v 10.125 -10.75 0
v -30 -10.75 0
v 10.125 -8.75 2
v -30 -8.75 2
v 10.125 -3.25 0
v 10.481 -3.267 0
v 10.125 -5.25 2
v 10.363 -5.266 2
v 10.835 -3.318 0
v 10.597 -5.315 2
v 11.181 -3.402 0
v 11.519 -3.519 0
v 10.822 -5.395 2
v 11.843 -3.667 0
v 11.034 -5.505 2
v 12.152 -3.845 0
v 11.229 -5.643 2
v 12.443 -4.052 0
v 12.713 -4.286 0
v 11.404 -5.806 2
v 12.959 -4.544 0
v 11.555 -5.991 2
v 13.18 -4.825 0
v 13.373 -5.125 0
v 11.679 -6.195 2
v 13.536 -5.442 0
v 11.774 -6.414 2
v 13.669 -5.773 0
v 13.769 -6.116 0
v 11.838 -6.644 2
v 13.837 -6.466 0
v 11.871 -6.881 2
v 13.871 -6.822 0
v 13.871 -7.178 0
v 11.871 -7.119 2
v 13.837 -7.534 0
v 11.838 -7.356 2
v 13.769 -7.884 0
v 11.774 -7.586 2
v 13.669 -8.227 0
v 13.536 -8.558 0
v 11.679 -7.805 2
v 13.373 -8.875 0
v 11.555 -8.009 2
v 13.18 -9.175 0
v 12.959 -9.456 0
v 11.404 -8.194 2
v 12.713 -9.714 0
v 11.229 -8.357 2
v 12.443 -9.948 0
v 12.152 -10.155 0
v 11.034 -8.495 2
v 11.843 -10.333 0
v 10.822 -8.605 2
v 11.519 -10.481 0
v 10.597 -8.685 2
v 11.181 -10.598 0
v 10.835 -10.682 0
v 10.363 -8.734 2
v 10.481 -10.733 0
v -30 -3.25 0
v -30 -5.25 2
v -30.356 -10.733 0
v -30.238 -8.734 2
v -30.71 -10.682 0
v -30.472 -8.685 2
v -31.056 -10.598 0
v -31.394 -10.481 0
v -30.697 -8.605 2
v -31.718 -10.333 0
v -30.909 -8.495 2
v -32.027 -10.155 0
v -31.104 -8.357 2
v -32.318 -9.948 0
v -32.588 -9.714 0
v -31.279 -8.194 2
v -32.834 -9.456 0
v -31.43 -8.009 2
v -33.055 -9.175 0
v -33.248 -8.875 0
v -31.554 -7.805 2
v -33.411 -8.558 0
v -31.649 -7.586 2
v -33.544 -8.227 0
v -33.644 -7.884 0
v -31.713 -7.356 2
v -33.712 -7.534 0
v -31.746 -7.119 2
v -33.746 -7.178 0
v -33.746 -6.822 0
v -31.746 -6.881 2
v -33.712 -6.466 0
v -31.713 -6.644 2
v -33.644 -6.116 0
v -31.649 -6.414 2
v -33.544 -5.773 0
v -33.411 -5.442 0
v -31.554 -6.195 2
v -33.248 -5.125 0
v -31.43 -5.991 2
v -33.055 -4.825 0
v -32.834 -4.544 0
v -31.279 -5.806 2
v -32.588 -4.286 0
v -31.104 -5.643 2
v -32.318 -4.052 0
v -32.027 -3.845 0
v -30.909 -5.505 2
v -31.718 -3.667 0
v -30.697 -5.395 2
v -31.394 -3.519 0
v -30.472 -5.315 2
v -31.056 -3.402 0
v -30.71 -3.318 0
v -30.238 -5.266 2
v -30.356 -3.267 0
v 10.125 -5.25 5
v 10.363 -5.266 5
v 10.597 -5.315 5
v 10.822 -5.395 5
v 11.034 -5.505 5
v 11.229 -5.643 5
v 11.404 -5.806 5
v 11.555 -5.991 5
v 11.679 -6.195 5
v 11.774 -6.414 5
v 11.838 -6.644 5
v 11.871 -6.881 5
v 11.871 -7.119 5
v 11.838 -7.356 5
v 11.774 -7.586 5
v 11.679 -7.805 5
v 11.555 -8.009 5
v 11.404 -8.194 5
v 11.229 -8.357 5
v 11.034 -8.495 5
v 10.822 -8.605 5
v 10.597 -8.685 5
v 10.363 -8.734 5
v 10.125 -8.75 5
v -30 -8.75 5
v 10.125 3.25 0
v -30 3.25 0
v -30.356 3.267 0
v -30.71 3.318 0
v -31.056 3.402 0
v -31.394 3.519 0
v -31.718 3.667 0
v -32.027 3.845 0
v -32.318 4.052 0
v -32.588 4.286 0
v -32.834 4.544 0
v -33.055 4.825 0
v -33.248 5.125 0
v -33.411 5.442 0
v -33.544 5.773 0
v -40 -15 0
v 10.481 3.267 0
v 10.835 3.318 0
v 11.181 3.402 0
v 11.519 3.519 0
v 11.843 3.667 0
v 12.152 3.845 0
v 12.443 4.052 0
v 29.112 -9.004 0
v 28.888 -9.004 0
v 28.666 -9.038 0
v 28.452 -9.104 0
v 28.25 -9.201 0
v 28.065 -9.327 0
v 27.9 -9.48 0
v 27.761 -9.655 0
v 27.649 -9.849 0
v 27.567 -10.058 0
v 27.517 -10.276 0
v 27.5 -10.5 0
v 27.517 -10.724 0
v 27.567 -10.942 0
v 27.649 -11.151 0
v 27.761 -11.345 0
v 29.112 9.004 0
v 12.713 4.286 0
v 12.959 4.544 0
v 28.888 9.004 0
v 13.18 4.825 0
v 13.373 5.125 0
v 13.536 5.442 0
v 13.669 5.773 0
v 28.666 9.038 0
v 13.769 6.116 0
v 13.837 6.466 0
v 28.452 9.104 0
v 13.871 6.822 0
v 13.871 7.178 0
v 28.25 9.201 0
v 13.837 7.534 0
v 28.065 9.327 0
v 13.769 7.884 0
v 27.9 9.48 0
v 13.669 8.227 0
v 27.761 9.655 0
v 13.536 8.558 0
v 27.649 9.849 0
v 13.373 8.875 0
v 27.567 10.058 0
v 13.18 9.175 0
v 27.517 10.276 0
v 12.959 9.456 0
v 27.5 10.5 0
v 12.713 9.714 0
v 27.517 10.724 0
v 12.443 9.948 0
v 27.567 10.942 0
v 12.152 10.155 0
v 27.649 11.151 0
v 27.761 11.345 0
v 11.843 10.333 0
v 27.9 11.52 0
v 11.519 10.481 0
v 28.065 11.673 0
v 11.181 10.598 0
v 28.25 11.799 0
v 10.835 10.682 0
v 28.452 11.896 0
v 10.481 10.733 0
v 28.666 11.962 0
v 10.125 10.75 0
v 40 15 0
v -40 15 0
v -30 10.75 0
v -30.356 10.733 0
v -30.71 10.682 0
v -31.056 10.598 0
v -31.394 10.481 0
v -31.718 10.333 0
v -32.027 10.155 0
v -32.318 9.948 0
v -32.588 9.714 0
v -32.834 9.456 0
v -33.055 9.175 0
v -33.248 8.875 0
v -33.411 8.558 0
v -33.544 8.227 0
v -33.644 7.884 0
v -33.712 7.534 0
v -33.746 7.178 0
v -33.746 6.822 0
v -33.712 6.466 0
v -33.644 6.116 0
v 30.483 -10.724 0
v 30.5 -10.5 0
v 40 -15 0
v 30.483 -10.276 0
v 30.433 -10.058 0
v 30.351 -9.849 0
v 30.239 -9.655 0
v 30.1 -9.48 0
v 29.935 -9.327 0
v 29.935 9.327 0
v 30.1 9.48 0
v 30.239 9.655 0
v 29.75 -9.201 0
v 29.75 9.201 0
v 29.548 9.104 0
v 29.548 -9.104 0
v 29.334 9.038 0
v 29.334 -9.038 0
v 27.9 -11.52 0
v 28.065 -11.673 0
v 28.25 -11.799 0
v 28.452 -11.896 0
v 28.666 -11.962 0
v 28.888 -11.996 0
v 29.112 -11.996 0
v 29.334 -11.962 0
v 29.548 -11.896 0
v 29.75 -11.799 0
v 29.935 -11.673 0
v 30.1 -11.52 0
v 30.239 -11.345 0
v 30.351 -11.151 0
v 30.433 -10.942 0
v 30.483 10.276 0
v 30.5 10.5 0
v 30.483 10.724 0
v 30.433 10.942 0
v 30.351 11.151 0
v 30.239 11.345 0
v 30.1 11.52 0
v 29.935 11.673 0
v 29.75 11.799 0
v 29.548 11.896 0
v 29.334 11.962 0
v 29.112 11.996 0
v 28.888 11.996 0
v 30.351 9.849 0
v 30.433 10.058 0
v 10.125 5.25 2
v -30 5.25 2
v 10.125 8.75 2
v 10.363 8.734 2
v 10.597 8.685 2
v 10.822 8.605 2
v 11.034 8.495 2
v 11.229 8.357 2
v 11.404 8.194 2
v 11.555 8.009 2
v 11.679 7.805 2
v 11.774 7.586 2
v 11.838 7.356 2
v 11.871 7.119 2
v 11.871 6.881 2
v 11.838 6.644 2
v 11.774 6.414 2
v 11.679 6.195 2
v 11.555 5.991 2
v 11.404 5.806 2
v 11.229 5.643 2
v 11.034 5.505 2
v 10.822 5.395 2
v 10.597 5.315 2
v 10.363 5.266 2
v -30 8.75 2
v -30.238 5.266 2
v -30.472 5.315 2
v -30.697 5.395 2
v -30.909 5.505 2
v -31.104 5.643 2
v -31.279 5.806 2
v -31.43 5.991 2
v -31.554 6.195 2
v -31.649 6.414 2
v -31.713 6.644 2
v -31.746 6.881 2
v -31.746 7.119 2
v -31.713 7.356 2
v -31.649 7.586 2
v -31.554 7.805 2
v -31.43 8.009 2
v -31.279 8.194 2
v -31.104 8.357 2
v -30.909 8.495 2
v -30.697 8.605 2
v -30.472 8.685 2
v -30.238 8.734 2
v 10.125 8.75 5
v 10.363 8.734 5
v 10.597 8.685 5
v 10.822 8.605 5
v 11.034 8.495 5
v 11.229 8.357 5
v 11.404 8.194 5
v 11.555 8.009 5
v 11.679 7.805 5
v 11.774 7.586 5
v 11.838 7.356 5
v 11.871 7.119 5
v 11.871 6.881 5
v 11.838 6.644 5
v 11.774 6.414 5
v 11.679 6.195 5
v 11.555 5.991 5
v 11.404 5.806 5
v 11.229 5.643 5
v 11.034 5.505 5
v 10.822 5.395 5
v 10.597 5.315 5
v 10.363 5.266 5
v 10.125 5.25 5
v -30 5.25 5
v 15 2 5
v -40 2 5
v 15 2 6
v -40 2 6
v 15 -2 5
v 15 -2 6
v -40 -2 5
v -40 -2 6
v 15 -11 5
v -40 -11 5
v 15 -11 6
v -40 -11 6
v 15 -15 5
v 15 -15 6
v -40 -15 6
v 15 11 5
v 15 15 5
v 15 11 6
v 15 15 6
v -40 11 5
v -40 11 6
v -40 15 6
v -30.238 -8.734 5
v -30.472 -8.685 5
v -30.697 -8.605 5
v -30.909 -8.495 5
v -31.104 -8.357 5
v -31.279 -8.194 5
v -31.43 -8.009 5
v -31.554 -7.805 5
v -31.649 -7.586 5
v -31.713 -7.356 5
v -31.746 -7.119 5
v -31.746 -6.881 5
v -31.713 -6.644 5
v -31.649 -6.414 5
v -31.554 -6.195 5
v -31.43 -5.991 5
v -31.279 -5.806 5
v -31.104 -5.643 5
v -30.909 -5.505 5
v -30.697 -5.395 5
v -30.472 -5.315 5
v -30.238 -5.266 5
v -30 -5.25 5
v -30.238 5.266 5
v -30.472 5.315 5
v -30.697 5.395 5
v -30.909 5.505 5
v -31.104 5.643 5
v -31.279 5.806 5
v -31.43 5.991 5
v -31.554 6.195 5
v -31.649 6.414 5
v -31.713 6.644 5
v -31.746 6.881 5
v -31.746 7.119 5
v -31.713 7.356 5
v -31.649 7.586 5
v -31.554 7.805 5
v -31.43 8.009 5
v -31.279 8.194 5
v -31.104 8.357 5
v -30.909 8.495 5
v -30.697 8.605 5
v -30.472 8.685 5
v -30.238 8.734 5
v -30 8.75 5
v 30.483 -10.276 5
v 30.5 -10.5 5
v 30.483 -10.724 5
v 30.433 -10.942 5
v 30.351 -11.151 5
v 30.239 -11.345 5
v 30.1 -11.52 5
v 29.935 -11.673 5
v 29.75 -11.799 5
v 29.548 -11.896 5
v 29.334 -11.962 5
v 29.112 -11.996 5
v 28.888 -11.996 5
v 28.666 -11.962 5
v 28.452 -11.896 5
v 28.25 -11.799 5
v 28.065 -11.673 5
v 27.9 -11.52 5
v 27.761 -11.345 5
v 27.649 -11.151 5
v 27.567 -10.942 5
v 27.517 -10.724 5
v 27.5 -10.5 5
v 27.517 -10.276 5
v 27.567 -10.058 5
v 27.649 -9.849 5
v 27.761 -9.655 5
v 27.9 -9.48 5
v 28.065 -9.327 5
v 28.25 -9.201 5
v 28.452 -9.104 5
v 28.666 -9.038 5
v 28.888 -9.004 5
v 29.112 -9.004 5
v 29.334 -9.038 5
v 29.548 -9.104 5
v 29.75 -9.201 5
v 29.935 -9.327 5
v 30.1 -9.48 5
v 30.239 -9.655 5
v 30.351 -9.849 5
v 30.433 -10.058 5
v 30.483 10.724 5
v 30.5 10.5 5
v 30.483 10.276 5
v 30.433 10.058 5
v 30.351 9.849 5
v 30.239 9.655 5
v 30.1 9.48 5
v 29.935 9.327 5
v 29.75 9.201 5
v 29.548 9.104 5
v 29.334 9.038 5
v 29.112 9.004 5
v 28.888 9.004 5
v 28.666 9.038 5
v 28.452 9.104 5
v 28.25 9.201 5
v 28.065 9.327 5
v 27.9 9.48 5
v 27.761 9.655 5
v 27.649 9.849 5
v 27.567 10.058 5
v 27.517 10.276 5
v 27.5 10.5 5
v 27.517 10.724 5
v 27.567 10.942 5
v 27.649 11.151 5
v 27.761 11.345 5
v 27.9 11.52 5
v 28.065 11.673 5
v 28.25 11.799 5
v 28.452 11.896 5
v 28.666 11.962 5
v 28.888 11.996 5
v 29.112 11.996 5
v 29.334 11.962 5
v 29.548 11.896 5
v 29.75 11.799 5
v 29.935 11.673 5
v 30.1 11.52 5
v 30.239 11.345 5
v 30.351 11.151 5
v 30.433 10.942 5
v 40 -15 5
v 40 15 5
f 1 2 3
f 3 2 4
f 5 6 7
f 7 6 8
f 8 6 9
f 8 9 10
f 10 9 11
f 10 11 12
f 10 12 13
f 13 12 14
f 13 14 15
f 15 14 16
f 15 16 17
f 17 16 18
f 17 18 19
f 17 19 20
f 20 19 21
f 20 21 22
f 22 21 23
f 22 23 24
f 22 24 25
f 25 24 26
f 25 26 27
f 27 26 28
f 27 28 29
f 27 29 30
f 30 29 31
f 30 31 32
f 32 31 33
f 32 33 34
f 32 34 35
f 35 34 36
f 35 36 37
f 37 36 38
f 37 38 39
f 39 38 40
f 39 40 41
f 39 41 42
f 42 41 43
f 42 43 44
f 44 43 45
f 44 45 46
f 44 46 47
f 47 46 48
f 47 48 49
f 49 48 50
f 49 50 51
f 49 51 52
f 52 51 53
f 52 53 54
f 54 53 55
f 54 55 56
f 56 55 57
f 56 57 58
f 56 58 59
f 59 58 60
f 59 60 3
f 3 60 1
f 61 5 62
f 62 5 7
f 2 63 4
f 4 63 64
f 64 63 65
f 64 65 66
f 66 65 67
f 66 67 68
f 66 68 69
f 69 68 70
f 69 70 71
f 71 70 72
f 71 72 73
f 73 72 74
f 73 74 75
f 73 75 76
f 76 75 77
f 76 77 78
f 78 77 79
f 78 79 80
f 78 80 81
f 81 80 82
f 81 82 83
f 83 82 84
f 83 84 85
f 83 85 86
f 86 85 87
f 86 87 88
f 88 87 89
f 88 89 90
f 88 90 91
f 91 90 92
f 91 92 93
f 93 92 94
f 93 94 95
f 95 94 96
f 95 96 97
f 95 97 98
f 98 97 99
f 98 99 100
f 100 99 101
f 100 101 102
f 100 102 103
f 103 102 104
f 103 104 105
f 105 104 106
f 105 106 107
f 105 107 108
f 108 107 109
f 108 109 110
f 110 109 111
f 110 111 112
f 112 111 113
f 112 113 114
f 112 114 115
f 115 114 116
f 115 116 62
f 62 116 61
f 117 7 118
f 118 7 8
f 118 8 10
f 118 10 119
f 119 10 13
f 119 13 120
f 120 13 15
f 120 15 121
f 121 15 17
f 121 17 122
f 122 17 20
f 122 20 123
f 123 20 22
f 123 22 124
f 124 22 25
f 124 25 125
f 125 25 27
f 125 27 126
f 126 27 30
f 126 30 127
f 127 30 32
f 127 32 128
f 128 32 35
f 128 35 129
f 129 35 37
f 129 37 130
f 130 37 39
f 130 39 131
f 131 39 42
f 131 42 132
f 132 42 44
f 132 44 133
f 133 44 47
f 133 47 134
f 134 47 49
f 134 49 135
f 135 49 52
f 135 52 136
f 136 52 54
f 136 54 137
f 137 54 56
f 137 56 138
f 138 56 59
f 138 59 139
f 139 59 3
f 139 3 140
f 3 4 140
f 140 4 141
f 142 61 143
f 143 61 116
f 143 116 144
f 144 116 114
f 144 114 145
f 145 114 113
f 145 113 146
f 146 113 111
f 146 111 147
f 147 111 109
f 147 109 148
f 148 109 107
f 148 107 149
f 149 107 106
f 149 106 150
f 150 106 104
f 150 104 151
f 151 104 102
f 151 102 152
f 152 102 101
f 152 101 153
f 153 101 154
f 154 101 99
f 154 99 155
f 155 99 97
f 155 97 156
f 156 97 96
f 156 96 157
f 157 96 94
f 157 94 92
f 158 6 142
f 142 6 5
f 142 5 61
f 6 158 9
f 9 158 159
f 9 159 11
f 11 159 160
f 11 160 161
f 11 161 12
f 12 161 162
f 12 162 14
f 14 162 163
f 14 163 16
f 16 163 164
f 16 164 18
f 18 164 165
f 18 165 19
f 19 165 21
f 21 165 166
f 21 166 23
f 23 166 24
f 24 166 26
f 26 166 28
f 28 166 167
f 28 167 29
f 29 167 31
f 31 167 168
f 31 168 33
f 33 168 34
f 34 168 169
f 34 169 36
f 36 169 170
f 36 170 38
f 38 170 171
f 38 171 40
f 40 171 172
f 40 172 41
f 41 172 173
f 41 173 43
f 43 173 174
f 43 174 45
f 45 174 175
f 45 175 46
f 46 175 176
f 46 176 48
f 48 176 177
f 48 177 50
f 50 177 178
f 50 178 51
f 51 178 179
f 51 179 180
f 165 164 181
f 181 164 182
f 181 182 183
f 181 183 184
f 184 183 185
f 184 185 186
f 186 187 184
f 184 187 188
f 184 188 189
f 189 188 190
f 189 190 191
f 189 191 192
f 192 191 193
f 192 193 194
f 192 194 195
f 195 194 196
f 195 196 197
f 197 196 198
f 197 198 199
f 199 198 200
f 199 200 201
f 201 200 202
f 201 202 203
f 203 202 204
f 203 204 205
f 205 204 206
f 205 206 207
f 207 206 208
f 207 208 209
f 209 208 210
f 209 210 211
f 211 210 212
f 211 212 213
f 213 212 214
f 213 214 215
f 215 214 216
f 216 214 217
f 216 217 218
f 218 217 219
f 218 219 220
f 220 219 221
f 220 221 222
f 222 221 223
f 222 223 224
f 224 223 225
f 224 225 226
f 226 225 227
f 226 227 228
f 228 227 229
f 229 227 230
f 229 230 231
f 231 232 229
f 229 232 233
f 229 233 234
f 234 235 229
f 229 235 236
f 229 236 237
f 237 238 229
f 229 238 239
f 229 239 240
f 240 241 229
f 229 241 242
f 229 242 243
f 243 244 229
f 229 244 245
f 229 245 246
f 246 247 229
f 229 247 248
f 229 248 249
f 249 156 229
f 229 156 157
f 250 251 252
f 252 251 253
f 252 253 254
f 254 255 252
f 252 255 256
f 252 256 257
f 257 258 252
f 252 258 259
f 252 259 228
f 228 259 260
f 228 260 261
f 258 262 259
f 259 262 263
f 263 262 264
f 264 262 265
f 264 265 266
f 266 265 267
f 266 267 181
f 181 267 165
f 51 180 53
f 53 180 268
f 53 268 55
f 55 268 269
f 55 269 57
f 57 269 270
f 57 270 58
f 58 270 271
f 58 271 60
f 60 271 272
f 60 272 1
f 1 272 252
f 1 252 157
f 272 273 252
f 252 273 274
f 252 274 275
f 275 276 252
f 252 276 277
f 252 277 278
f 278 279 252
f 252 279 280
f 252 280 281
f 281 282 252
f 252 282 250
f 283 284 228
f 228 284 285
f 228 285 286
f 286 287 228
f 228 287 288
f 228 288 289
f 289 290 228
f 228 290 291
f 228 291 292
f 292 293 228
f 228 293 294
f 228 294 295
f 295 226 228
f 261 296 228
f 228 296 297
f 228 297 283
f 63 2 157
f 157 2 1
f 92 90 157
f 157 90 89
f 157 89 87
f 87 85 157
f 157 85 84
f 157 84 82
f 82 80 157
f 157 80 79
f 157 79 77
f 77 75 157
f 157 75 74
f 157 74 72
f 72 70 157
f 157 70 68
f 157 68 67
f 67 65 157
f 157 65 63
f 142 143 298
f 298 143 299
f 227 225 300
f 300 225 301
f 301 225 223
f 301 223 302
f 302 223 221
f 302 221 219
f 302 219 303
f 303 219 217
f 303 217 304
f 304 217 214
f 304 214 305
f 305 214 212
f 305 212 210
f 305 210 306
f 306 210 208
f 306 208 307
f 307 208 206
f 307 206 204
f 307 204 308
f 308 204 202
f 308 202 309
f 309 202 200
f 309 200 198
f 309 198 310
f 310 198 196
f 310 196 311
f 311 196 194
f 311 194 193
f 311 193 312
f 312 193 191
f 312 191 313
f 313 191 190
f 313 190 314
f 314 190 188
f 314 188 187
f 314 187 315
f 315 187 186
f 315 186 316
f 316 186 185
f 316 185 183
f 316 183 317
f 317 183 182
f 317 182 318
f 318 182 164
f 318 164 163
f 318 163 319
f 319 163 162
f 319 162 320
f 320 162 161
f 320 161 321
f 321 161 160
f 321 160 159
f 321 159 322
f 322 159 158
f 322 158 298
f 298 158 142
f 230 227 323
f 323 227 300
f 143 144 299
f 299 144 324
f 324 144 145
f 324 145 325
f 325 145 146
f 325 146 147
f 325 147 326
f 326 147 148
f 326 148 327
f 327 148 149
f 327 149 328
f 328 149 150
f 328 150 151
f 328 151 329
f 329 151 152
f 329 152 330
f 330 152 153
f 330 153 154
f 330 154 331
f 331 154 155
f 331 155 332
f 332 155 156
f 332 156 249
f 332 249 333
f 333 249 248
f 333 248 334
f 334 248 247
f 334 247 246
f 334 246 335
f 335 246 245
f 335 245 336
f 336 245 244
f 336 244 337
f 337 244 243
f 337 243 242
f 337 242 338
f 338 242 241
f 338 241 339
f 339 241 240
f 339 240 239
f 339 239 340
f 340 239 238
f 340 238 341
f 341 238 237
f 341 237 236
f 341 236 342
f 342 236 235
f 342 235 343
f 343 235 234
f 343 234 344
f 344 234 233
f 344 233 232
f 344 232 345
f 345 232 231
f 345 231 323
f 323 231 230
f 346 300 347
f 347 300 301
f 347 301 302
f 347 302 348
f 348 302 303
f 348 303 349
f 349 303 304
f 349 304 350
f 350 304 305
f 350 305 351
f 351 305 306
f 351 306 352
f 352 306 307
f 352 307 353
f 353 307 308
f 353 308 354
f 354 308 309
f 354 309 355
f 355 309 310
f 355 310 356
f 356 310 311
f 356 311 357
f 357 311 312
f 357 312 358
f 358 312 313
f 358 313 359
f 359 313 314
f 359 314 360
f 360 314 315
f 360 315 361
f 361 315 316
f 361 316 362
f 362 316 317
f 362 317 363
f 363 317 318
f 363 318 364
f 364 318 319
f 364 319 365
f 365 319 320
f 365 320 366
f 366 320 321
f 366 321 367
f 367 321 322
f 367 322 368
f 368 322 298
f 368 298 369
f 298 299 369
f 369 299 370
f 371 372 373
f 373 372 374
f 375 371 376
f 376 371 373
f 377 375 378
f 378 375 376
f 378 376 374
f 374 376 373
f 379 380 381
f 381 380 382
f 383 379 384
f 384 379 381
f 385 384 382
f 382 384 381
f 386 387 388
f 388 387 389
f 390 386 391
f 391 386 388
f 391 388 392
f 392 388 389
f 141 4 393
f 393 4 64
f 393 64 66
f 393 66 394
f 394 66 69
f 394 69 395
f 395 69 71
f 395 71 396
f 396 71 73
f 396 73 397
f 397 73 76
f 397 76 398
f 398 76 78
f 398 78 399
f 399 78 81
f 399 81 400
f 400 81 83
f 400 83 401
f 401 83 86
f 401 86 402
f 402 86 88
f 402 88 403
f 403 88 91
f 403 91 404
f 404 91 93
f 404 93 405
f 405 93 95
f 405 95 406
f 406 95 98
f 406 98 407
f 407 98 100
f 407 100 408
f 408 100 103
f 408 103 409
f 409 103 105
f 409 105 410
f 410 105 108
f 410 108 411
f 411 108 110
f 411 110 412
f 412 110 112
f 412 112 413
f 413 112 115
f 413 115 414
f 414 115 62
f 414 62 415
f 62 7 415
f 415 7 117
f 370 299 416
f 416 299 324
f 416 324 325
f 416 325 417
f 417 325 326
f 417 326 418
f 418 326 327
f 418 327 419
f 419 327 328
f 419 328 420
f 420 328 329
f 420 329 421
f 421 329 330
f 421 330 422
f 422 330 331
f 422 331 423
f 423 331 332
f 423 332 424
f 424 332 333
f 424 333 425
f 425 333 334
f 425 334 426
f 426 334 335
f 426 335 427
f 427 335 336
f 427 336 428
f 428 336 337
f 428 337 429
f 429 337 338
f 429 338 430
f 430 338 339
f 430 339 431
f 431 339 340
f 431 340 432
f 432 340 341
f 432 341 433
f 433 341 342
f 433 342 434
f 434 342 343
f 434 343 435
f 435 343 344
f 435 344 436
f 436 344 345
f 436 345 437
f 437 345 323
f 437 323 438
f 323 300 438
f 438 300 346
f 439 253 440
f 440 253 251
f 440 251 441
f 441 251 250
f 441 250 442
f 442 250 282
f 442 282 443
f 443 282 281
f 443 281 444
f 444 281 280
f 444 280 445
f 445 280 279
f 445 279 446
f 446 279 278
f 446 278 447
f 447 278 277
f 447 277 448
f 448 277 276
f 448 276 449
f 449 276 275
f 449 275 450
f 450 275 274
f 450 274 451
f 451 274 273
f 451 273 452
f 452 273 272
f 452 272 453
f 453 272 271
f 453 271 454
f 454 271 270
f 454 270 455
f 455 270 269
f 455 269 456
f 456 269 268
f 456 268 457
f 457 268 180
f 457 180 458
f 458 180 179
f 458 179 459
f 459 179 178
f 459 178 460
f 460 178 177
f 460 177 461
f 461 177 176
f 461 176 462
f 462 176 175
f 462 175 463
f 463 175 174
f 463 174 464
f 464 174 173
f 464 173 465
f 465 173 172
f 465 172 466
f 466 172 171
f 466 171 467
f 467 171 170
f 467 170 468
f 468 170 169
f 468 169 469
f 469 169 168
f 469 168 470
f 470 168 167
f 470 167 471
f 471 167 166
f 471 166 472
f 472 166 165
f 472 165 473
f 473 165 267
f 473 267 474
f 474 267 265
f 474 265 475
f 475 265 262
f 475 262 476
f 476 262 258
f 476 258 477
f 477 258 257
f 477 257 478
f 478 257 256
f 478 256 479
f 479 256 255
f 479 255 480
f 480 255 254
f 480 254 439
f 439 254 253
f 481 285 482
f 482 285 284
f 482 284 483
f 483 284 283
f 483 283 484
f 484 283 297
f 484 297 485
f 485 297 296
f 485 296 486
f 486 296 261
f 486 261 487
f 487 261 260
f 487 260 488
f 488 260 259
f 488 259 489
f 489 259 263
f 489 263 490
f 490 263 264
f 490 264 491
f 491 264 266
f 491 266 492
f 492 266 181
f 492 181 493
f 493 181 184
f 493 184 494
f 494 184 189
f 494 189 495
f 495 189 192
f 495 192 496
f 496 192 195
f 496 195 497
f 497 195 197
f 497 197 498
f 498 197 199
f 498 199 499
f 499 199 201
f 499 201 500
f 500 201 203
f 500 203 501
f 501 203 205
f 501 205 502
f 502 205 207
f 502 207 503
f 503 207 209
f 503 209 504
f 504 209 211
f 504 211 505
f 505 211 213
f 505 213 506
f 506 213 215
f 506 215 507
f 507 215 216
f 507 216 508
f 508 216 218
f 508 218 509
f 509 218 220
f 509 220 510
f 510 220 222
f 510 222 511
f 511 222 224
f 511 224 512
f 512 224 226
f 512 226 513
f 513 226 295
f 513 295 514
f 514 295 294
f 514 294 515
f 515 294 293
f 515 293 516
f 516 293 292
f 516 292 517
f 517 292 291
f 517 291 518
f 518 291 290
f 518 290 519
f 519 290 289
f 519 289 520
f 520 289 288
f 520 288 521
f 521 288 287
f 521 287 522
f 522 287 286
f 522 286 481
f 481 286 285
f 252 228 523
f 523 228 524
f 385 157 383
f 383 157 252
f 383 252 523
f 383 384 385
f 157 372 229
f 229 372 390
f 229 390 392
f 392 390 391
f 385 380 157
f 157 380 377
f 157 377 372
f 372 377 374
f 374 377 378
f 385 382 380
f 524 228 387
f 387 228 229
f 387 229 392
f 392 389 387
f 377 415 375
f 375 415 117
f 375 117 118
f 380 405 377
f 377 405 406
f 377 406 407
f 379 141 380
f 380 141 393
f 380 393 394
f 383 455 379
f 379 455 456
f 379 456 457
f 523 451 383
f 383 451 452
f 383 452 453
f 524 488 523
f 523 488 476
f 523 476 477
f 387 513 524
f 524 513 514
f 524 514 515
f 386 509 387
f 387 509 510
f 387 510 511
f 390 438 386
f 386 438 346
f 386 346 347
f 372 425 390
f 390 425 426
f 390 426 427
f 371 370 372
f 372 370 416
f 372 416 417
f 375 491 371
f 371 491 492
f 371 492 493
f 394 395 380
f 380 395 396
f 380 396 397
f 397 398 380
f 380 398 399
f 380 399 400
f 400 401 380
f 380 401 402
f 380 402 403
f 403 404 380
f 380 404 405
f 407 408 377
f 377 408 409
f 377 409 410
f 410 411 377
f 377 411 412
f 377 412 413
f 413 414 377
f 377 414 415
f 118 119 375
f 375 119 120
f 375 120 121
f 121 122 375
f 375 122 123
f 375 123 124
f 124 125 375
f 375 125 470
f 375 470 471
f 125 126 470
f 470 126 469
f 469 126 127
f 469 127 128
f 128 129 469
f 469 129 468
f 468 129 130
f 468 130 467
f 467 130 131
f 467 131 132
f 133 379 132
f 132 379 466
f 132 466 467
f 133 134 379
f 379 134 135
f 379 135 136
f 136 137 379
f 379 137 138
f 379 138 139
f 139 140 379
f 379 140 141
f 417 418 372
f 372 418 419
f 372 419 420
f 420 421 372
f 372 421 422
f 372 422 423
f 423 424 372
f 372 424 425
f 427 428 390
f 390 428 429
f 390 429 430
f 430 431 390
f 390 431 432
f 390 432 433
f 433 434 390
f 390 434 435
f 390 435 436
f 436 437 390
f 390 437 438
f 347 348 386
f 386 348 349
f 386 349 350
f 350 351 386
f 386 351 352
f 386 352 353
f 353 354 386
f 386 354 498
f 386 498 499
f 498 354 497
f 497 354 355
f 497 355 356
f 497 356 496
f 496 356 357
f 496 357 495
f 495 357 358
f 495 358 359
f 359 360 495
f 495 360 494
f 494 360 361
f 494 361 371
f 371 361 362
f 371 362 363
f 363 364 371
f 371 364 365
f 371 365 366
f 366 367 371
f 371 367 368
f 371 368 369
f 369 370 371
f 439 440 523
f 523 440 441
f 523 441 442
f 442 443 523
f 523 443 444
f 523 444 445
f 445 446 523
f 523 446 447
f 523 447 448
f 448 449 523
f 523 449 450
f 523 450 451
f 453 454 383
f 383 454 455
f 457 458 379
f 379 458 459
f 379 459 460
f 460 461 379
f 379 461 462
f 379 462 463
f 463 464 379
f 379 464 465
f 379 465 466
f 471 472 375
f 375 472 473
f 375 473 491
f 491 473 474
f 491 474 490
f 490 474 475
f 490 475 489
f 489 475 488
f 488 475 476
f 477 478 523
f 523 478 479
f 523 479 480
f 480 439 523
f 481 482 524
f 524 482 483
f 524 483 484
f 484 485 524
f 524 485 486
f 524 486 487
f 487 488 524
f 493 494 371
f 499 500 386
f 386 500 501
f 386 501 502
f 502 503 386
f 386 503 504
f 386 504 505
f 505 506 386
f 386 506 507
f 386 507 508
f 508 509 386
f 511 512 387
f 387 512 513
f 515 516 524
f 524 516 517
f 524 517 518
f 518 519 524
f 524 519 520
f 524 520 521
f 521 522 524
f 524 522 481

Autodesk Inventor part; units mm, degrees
ref_plane "YZ Plane" through (0, 0, 0) normal (1, 0, 0) x (0, 1, 0)
ref_plane "XZ Plane" through (0, 0, 0) normal (0, 1, 0) x (-1, 0, 0)
ref_plane "XY Plane" through (0, 0, 0) normal (0, 0, 1) x (1, 0, 0)
sketch "Sketch1" plane through (0, 0, 0) normal (0, 0, 1) x (1, 0, 0)
  line L0 (-40, 15) -> (40, 15)
  line L1 (40, 15) -> (40, -15)
  line L2 (40, -15) -> (-40, -15)
  line L3 (-40, -15) -> (-40, 15)
  line L4 (-30, 7) -> (10.125, 7) construction
  line L5 (-30, 5.25) -> (10.125, 5.25)
  line L6 (10.125, 8.75) -> (-30, 8.75)
  arc A0 (-30, 8.75) -> (-30, 5.25) centre (-30, 7) ccw
  arc A1 (10.125, 5.25) -> (10.125, 8.75) centre (10.125, 7) ccw
  line L7 (-30, -7) -> (10.125, -7) construction
  line L8 (-30, -8.75) -> (10.125, -8.75)
  line L9 (10.125, -5.25) -> (-30, -5.25)
  arc A2 (-30, -5.25) -> (-30, -8.75) centre (-30, -7) ccw
  arc A3 (10.125, -8.75) -> (10.125, -5.25) centre (10.125, -7) ccw
  circle A4 centre (29, 10.5) radius 1.5
  circle A5 centre (29, -10.5) radius 1.5
  point P0 (0, 0)
  point P1 (-9.9375, 7)
  point P2 (-9.9375, -7)
  point P3 (40, 0)
  point P4 (0, -15)
  dimension "d0" = 21
  dimension "d1" = 11
  dimension "d2" = 30
  dimension "d3" = 3
  dimension "d4" = 4.5
  dimension "d5" = 80
  dimension "d6" = 3.5
  dimension "d7" = 3.5
  dimension "d8" = 10
  dimension "d10" = 10
  dimension "d11" = 8
  dimension "d12" = 8
  dimension "d13" = 18.875
  dimension "d14" = 18.875
extrude "Extrusion1" add sketch "Sketch1" along normal blind 5
sketch "Sketch2" plane through (0, 0, 5) normal (0, 0, 1) x (1, 0, 0)
  line L0 (-40, 15) -> (15, 15)
  line L1 (15, 15) -> (15, 11)
  line L2 (15, 11) -> (-40, 11)
  line L3 (-40, 11) -> (-40, 15)
  line L4 (-40, 2) -> (15, 2)
  line L5 (15, 2) -> (15, -2)
  line L6 (15, -2) -> (-40, -2)
  line L7 (-40, -2) -> (-40, 2)
  line L8 (-40, 15) -> (-40, -15) projected
  line L9 (-40, -15) -> (40, -15) projected
  line L10 (-40, -11) -> (15, -11)
  line L11 (15, -11) -> (15, -15)
  line L12 (15, -15) -> (-40, -15)
  line L13 (-40, -15) -> (-40, -11)
  point P0 (0, 0)
  point P1 (15, 0)
  dimension "d17" = 4
  dimension "d18" = 4
  dimension "d19" = 4
  dimension "d20" = 55
extrude "Extrusion2" add sketch "Sketch2" along normal blind 1
chamfer "Chamfer1" distance 2 angle 45 8 edges at (-9.9375, 5.25, 0) (11.875, 7, 0) (-9.9375, 8.75, 0) (-31.75, 7, 0) (-9.9375, -8.75, 0) (11.875, -7, 0) (-9.9375, -5.25, 0) (-31.75, -7, 0)
equation "\"d10\" = d8"
equation "\"d12\" = d11"
equation "\"d14\" = d13"
equation "\"d18\" = d17"
equation "\"d19\" = d17"
